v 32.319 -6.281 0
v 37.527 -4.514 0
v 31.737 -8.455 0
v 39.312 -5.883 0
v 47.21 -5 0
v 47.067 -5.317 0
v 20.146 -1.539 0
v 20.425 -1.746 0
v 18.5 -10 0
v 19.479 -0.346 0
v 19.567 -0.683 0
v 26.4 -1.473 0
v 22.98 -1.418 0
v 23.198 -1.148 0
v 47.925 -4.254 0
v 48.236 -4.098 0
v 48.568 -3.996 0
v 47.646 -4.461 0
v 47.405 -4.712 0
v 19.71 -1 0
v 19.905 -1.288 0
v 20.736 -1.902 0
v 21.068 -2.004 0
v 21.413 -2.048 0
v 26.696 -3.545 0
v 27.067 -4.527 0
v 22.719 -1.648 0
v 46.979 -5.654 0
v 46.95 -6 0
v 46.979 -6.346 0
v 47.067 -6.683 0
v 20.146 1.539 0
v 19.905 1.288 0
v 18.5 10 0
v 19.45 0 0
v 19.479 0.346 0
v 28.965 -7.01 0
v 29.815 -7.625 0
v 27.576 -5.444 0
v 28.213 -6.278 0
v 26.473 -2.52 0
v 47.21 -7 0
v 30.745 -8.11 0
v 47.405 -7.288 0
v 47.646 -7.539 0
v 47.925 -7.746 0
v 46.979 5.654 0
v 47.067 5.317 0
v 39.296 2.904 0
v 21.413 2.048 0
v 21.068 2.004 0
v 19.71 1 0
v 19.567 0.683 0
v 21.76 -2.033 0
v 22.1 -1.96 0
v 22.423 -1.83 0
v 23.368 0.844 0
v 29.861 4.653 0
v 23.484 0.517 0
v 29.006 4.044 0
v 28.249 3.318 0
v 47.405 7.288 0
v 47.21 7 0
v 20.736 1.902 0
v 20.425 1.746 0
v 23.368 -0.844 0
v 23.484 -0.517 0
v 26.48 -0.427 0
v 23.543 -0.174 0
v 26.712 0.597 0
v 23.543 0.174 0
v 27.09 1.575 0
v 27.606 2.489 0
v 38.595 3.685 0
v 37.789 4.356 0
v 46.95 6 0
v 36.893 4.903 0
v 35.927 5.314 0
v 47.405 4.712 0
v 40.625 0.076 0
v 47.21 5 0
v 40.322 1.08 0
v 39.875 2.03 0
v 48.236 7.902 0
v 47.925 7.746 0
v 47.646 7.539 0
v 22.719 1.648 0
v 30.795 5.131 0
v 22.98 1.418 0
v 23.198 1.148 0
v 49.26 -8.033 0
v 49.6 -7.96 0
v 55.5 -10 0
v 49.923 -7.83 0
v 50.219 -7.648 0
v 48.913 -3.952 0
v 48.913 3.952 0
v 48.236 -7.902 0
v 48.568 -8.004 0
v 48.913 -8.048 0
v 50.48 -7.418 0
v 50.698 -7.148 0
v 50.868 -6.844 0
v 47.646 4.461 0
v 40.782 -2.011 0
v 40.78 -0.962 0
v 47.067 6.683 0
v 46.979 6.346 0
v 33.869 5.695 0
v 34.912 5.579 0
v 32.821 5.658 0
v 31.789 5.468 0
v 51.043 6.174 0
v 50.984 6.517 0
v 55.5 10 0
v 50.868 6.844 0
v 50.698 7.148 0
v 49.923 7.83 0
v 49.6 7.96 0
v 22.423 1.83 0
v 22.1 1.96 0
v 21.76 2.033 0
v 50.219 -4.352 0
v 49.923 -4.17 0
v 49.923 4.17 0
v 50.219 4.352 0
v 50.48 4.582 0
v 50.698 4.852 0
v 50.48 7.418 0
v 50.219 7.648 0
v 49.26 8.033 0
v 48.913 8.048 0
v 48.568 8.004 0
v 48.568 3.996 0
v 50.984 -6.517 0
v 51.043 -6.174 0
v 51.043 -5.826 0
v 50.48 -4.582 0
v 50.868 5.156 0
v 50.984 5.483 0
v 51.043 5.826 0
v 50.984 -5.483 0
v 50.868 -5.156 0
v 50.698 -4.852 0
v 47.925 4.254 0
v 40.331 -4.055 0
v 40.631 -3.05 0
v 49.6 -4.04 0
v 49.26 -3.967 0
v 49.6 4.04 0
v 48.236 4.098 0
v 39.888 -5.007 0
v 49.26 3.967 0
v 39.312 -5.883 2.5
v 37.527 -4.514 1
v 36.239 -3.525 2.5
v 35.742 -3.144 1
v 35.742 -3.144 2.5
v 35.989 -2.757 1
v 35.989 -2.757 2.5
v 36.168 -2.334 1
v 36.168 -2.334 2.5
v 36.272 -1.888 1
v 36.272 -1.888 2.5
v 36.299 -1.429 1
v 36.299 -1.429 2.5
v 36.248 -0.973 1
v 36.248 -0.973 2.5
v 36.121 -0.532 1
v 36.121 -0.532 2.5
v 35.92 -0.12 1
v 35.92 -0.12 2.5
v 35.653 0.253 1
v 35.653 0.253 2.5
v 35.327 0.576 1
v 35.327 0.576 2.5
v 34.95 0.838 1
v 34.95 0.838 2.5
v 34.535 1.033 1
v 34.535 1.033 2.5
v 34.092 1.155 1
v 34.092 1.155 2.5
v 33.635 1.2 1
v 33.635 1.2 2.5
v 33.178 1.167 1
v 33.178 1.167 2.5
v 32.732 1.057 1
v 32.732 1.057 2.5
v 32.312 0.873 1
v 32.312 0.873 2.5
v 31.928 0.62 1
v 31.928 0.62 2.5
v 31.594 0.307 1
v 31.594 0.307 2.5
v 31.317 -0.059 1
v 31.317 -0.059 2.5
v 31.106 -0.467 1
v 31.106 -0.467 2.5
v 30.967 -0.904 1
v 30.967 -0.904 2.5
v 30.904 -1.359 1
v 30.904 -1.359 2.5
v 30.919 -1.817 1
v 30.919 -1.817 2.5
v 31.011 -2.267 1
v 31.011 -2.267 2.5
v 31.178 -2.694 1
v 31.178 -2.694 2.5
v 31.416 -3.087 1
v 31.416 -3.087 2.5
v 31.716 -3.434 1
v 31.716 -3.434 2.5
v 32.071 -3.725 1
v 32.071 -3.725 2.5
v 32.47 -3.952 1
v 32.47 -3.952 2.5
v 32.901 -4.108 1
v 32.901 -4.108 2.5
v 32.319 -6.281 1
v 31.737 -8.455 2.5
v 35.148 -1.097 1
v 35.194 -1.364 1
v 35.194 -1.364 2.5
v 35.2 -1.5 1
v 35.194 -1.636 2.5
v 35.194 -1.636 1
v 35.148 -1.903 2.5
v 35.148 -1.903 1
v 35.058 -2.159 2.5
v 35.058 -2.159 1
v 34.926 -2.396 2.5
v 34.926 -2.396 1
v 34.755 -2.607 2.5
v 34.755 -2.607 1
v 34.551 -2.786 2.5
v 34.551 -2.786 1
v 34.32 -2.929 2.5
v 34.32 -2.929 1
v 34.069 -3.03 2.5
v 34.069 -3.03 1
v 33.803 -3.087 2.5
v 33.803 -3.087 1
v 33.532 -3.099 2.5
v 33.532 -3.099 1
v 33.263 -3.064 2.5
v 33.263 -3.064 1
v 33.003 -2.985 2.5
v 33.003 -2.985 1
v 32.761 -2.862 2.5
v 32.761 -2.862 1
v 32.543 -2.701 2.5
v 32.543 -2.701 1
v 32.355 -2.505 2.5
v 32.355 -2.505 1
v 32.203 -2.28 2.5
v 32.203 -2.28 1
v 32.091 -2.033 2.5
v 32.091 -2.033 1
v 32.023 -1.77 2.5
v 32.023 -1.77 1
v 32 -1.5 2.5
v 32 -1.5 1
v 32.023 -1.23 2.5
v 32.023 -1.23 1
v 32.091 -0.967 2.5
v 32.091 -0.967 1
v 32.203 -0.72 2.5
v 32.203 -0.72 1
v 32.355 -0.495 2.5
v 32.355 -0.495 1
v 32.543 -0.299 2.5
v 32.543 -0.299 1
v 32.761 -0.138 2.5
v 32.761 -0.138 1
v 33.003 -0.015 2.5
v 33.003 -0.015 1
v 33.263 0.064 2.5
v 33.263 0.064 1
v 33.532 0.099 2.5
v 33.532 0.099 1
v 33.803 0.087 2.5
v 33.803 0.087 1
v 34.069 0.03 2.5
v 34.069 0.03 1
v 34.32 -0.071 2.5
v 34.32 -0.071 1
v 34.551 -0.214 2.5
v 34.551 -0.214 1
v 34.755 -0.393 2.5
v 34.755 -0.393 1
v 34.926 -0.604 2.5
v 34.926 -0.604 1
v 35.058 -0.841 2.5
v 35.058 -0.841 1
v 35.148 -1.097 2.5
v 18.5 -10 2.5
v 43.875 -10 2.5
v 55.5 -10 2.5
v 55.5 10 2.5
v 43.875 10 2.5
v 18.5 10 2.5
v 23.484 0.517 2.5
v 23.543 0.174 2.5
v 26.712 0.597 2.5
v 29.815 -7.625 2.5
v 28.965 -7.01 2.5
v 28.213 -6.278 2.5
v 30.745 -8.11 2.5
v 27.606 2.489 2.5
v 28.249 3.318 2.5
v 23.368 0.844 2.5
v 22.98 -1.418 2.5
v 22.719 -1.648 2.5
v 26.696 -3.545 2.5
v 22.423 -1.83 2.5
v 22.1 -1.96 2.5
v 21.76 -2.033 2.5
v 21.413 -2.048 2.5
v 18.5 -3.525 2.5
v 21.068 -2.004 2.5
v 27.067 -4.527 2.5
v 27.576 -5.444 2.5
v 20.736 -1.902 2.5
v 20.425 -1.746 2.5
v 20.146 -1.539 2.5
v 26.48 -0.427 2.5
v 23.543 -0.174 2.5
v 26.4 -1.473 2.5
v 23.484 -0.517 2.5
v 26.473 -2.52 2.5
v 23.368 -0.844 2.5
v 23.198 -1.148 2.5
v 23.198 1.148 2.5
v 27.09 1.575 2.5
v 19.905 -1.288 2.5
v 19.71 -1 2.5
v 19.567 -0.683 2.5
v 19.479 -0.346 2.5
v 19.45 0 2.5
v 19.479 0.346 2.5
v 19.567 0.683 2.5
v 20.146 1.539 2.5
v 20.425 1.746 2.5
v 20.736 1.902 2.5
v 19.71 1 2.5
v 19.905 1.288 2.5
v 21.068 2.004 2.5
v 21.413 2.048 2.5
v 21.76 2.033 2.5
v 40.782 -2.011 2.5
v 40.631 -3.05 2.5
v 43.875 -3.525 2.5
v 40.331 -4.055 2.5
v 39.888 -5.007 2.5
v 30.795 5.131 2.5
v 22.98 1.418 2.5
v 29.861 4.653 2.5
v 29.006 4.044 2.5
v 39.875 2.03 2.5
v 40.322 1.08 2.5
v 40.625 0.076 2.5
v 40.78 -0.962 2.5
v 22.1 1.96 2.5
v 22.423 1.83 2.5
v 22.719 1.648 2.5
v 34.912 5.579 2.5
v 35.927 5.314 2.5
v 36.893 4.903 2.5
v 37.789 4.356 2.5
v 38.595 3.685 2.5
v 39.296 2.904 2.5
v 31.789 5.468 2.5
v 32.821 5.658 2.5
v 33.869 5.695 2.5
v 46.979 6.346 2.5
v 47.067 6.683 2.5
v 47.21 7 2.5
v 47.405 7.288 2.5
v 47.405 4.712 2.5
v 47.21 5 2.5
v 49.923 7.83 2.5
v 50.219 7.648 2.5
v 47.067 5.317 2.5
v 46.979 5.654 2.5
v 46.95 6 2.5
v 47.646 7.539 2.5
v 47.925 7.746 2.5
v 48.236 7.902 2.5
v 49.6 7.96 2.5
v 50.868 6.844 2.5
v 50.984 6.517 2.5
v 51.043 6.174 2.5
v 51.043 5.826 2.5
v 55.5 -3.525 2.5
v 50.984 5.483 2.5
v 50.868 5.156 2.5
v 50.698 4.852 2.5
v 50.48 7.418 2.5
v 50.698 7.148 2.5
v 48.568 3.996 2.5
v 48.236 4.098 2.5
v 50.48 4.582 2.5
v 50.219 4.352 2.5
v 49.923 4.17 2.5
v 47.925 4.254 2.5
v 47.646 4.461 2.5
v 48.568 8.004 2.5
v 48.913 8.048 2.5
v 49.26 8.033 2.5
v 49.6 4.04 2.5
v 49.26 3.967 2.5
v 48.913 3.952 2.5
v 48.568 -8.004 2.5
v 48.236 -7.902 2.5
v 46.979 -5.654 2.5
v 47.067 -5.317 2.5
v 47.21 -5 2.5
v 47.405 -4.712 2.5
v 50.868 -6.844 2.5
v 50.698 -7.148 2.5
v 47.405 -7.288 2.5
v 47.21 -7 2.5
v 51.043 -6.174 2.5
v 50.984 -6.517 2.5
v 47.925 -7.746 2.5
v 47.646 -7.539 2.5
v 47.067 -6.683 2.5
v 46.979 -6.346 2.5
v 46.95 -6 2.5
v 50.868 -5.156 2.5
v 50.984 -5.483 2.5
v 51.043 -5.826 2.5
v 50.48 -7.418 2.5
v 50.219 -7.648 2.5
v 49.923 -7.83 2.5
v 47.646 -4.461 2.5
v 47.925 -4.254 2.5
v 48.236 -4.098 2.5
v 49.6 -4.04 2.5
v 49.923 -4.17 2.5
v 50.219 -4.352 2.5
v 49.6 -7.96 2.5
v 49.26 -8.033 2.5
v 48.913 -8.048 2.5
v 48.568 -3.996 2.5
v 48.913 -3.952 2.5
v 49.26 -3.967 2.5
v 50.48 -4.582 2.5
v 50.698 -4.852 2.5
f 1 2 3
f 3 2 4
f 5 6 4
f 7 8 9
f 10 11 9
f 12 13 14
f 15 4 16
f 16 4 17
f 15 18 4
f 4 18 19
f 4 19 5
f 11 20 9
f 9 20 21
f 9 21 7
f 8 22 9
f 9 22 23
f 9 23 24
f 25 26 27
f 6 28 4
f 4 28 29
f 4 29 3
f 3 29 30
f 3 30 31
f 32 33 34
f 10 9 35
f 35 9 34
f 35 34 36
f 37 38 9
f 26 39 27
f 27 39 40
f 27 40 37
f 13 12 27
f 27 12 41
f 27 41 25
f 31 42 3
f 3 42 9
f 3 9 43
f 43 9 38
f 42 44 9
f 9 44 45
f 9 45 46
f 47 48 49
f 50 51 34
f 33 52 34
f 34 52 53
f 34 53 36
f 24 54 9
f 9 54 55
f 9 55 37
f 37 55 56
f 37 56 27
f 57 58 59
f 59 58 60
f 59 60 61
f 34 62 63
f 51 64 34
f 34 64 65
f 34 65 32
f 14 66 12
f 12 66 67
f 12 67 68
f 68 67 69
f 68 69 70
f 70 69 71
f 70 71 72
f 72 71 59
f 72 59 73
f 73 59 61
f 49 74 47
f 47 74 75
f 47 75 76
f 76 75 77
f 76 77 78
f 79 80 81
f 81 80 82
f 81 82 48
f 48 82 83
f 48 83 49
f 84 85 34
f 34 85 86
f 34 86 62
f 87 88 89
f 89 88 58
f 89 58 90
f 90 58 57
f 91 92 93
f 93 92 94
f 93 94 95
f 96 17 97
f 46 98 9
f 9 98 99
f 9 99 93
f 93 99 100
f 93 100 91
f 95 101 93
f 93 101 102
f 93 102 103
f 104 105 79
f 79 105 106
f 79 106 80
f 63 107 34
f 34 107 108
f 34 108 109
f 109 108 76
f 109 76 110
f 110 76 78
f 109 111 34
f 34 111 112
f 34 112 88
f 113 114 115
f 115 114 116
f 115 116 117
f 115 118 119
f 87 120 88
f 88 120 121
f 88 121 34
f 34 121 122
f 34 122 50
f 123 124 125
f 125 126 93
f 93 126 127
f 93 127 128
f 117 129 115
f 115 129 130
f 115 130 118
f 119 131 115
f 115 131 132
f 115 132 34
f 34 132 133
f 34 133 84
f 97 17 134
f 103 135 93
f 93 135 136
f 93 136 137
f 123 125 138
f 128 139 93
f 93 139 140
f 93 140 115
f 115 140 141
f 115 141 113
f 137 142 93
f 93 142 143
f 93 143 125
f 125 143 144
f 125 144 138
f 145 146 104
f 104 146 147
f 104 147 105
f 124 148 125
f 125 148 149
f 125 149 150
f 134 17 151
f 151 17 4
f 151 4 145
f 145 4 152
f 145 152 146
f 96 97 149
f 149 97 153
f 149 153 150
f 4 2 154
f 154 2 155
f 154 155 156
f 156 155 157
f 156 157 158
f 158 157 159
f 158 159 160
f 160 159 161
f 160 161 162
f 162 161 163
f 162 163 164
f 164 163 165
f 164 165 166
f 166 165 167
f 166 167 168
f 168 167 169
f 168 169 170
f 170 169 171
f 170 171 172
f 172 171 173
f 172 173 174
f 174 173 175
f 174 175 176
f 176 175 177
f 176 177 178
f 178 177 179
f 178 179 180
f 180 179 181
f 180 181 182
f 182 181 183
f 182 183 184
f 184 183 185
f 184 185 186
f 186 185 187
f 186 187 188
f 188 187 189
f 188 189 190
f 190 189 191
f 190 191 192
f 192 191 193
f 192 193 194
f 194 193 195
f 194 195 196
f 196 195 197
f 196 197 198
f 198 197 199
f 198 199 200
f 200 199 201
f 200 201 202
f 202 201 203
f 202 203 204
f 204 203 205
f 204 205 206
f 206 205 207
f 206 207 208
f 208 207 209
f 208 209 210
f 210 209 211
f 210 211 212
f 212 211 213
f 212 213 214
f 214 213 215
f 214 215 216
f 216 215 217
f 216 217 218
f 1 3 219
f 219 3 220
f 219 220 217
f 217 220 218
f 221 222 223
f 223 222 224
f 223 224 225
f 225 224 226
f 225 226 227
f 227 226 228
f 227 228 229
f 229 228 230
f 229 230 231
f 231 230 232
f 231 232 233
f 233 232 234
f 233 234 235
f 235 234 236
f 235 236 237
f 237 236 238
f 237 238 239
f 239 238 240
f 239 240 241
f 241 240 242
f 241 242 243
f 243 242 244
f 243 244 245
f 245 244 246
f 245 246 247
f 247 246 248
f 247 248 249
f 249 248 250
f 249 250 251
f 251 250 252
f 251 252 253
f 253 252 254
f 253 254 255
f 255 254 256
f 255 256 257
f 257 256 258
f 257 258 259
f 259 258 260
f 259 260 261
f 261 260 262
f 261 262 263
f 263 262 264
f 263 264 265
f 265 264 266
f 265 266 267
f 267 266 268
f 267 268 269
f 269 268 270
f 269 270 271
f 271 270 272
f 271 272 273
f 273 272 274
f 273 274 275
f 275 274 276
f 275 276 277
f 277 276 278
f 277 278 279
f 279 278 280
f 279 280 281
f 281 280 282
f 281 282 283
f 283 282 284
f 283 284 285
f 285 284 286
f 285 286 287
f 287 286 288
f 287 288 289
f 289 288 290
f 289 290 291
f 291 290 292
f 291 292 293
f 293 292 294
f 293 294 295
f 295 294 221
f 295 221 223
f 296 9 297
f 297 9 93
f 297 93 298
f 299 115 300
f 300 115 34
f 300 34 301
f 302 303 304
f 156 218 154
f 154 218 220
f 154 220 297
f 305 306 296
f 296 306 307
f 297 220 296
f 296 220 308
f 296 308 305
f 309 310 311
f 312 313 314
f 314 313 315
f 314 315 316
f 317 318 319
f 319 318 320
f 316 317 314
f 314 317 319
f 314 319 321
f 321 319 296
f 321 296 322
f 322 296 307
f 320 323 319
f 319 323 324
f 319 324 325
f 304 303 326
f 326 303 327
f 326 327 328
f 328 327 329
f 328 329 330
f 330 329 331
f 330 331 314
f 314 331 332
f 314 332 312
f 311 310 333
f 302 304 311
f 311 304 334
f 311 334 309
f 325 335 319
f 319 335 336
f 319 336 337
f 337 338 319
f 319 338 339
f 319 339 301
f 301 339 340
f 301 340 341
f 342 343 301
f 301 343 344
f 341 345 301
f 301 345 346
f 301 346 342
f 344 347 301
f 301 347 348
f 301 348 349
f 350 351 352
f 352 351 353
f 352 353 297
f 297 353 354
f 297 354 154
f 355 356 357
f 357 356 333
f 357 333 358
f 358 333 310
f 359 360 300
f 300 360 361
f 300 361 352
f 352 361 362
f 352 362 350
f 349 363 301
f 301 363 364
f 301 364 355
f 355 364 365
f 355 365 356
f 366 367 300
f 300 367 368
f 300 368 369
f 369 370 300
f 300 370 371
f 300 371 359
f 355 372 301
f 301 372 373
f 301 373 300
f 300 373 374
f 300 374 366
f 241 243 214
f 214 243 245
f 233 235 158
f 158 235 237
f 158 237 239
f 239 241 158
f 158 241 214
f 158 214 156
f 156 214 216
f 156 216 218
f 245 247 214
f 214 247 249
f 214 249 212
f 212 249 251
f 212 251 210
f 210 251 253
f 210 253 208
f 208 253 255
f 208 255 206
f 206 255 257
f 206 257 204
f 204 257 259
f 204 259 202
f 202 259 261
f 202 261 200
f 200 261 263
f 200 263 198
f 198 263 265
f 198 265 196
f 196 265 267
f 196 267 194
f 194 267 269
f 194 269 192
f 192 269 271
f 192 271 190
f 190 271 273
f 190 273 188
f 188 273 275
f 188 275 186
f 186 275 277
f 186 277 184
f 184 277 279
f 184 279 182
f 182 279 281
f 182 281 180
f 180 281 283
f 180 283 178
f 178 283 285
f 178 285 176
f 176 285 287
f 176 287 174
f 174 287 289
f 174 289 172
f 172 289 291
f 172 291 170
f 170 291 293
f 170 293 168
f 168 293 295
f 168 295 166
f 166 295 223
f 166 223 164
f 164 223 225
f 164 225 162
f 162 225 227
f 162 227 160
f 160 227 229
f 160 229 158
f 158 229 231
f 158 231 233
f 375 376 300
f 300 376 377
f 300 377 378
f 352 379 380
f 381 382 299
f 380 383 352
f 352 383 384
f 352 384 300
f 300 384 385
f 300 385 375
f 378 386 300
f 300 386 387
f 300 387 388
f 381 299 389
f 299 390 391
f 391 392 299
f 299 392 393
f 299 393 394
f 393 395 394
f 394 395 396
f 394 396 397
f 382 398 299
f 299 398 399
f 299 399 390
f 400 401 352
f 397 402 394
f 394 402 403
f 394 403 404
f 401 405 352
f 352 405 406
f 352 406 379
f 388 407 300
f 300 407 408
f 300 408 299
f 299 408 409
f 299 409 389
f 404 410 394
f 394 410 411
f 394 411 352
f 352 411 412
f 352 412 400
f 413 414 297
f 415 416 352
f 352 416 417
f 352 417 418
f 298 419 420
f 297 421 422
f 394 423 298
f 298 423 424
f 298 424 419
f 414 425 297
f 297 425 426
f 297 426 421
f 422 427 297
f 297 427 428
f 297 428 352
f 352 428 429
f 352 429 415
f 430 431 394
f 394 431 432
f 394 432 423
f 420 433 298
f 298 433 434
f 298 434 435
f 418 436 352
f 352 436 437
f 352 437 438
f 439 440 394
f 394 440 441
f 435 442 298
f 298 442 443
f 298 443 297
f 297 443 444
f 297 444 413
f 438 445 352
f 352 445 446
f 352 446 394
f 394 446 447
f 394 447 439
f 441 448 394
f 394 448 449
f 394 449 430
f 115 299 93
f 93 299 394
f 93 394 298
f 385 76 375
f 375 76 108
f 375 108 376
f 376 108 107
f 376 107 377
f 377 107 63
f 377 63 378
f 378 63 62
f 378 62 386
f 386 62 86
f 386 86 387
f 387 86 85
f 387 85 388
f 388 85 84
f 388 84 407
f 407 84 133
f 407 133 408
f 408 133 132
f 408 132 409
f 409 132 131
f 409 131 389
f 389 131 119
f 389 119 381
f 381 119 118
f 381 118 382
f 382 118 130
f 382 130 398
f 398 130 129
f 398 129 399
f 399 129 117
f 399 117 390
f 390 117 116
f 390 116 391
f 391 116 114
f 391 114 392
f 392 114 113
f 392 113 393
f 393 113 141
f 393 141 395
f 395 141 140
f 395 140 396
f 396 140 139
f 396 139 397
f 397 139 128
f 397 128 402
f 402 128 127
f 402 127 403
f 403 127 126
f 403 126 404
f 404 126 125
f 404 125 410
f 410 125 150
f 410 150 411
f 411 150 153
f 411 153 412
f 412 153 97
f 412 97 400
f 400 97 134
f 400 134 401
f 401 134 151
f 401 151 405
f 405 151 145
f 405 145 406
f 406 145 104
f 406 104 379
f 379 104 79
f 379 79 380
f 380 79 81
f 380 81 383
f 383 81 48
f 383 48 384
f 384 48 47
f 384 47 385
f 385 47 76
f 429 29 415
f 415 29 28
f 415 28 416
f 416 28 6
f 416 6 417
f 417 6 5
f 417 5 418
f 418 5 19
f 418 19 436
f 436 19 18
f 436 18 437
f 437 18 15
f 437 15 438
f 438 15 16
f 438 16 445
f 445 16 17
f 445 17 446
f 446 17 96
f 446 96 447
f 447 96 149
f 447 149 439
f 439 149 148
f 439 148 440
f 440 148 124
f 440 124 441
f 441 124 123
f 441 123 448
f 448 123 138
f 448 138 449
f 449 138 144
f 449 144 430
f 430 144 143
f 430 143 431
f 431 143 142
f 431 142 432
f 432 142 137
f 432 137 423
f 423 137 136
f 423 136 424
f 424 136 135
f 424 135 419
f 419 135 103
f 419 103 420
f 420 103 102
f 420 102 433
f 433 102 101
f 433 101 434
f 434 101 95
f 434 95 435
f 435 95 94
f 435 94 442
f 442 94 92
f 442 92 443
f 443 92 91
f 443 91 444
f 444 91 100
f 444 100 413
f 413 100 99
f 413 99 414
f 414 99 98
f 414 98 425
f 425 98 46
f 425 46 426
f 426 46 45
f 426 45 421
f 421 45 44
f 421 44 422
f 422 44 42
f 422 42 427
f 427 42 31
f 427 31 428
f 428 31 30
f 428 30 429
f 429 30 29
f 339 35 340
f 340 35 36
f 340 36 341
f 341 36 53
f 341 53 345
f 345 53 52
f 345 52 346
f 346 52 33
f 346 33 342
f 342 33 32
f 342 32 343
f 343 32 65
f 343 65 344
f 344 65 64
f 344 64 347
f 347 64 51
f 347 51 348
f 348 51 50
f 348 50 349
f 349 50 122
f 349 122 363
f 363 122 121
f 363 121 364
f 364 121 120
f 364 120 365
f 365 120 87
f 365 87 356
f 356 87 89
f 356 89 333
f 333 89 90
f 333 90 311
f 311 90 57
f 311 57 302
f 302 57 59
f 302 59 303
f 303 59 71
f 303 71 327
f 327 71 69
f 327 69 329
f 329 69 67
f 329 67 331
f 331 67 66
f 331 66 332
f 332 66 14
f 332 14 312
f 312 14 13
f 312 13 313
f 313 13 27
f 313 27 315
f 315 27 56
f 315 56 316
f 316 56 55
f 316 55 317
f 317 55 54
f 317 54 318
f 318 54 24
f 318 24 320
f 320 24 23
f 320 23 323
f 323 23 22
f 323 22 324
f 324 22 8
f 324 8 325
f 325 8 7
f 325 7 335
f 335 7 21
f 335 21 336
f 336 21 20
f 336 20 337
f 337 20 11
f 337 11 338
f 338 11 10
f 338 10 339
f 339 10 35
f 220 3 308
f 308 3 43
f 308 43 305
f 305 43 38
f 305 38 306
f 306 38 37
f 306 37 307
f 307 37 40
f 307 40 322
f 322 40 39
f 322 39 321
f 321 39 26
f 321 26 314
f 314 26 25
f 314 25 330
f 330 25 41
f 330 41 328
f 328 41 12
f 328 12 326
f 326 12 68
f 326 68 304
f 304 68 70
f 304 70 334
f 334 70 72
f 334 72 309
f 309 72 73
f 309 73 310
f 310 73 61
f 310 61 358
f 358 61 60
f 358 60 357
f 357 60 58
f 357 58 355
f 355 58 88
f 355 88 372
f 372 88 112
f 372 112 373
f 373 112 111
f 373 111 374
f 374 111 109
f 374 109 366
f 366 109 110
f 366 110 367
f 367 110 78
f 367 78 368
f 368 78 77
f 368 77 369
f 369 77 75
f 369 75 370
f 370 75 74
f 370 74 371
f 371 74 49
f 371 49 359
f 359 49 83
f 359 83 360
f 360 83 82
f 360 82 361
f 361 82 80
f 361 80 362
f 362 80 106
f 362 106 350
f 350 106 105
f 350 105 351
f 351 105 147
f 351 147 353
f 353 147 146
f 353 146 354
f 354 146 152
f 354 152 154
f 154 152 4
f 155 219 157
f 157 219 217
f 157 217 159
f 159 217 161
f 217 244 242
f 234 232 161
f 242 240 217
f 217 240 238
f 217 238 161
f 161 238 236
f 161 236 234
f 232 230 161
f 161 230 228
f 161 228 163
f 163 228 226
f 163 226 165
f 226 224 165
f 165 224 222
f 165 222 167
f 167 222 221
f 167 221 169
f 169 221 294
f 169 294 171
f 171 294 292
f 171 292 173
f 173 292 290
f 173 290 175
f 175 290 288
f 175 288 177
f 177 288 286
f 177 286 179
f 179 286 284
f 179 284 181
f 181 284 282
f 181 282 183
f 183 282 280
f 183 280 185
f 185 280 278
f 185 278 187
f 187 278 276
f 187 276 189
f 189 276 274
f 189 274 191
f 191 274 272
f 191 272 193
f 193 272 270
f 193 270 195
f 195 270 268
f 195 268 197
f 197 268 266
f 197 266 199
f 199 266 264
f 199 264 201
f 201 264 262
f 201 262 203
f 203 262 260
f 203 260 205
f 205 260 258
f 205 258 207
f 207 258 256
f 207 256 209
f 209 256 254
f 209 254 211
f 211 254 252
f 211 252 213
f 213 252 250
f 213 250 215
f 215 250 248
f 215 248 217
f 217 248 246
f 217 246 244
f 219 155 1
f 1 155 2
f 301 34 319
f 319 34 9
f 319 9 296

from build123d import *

# Parameters (mm, degrees)
ESQUISSE1_W             = 37
ESQUISSE1_H             = 20
ESQUISSE1_R             = 2.05
ESQUISSE1_R_2           = 1.6
BOSS_EXTRU_1_DEPTH      = 2.5
ESQUISSE3_R             = 1.6
ENL_V_MAT_EXTRU_1_DEPTH = 1
ESQUISSE5_W             = 2.5
ESQUISSE5_H             = 20
ENL_V_MAT_EXTRU_3_DEPTH = 39.408983324


with BuildPart() as part:
    # Esquisse1 → Boss.-Extru.1 (new body)
    with BuildSketch(Plane.XY):
        Rectangle(ESQUISSE1_W, ESQUISSE1_H)
        with Locations((-12, 6)):
            Circle(ESQUISSE1_R, mode=Mode.SUBTRACT)
        with Locations((-12, -6)):
            Circle(ESQUISSE1_R, mode=Mode.SUBTRACT)
        with Locations((15.5, 0)):
            Circle(ESQUISSE1_R, mode=Mode.SUBTRACT)
        with Locations((3.4, -1.5)):
            Circle(ESQUISSE1_R_2, mode=Mode.SUBTRACT)
        with BuildLine():
            Line((-2.311989303, -5.883283951), (1.258004011, -3.143731482))
            ThreePointArc((1.258004011, -3.143731482), (4.267841424, 1.056726669), (4.098811422, -4.107999731))
            Line((4.098811422, -4.107999731), (5.263497125, -8.454665949))
            ThreePointArc((5.263497125, -8.454665949), (5.714243798, 5.317937785), (-2.311989303, -5.883283951))
        make_face(mode=Mode.SUBTRACT)
    boss_extru_1 = extrude(amount=BOSS_EXTRU_1_DEPTH)

    # Esquisse3 → Enlèv. mat.-Extru.1 (cut)
    # profile 1 of 2: a face of its own
    with BuildSketch(Plane(origin=(0, 0, 0), x_dir=(-1, 0, 0), z_dir=(0, 0, -1))):
        with BuildLine():
            Line((2.311989303, -5.883283951), (-1.258004011, -3.143731482))
            ThreePointArc((-1.258004011, -3.143731482), (-4.267841424, 1.056726669), (-4.098811422, -4.107999731))
            Line((-4.098811422, -4.107999731), (-5.263497125, -8.454665949))
            ThreePointArc((-5.263497125, -8.454665949), (-5.714243798, 5.317937785), (2.311989303, -5.883283951))
        make_face()
    # profile 2 of 2: a face of its own
    with BuildSketch(Plane(origin=(0, 0, 0), x_dir=(-1, 0, 0), z_dir=(0, 0, -1))):
        with BuildLine():
            Line((-4.681154273, -6.28133284), (0.526992646, -4.513507717))
            Line((0.526992646, -4.513507717), (-1.258004011, -3.143731482))
            ThreePointArc((-1.258004011, -3.143731482), (-4.267841424, 1.056726669), (-4.098811422, -4.107999731))
            Line((-4.098811422, -4.107999731), (-4.681154273, -6.28133284))
        make_face()
        with Locations((-3.4, -1.5)):
            Circle(ESQUISSE3_R, mode=Mode.SUBTRACT)
    enl_v_mat_extru_1 = extrude(amount=-ENL_V_MAT_EXTRU_1_DEPTH, mode=Mode.SUBTRACT)

    # Symétrie1: Boss.-Extru.1, Enlèv. mat.-Extru.1 across plane
    add(boss_extru_1.mirror(Plane(origin=(18.5, 0, 0), x_dir=(0, 0, 1), z_dir=(1, 0, 0))))
    add(enl_v_mat_extru_1.mirror(Plane(origin=(18.5, 0, 0), x_dir=(0, 0, 1), z_dir=(1, 0, 0))), mode=Mode.SUBTRACT)

    # Esquisse5 → Enlèv. mat.-Extru.3 (cut, through all)
    with BuildSketch(Plane(origin=(18.5, 0, 0), x_dir=(0, 0, -1), z_dir=(1, 0, 0))):
        with Locations((-1.25, 0)):
            Rectangle(ESQUISSE5_W, ESQUISSE5_H)
    extrude(amount=-ENL_V_MAT_EXTRU_3_DEPTH, mode=Mode.SUBTRACT)


solid = part.part
